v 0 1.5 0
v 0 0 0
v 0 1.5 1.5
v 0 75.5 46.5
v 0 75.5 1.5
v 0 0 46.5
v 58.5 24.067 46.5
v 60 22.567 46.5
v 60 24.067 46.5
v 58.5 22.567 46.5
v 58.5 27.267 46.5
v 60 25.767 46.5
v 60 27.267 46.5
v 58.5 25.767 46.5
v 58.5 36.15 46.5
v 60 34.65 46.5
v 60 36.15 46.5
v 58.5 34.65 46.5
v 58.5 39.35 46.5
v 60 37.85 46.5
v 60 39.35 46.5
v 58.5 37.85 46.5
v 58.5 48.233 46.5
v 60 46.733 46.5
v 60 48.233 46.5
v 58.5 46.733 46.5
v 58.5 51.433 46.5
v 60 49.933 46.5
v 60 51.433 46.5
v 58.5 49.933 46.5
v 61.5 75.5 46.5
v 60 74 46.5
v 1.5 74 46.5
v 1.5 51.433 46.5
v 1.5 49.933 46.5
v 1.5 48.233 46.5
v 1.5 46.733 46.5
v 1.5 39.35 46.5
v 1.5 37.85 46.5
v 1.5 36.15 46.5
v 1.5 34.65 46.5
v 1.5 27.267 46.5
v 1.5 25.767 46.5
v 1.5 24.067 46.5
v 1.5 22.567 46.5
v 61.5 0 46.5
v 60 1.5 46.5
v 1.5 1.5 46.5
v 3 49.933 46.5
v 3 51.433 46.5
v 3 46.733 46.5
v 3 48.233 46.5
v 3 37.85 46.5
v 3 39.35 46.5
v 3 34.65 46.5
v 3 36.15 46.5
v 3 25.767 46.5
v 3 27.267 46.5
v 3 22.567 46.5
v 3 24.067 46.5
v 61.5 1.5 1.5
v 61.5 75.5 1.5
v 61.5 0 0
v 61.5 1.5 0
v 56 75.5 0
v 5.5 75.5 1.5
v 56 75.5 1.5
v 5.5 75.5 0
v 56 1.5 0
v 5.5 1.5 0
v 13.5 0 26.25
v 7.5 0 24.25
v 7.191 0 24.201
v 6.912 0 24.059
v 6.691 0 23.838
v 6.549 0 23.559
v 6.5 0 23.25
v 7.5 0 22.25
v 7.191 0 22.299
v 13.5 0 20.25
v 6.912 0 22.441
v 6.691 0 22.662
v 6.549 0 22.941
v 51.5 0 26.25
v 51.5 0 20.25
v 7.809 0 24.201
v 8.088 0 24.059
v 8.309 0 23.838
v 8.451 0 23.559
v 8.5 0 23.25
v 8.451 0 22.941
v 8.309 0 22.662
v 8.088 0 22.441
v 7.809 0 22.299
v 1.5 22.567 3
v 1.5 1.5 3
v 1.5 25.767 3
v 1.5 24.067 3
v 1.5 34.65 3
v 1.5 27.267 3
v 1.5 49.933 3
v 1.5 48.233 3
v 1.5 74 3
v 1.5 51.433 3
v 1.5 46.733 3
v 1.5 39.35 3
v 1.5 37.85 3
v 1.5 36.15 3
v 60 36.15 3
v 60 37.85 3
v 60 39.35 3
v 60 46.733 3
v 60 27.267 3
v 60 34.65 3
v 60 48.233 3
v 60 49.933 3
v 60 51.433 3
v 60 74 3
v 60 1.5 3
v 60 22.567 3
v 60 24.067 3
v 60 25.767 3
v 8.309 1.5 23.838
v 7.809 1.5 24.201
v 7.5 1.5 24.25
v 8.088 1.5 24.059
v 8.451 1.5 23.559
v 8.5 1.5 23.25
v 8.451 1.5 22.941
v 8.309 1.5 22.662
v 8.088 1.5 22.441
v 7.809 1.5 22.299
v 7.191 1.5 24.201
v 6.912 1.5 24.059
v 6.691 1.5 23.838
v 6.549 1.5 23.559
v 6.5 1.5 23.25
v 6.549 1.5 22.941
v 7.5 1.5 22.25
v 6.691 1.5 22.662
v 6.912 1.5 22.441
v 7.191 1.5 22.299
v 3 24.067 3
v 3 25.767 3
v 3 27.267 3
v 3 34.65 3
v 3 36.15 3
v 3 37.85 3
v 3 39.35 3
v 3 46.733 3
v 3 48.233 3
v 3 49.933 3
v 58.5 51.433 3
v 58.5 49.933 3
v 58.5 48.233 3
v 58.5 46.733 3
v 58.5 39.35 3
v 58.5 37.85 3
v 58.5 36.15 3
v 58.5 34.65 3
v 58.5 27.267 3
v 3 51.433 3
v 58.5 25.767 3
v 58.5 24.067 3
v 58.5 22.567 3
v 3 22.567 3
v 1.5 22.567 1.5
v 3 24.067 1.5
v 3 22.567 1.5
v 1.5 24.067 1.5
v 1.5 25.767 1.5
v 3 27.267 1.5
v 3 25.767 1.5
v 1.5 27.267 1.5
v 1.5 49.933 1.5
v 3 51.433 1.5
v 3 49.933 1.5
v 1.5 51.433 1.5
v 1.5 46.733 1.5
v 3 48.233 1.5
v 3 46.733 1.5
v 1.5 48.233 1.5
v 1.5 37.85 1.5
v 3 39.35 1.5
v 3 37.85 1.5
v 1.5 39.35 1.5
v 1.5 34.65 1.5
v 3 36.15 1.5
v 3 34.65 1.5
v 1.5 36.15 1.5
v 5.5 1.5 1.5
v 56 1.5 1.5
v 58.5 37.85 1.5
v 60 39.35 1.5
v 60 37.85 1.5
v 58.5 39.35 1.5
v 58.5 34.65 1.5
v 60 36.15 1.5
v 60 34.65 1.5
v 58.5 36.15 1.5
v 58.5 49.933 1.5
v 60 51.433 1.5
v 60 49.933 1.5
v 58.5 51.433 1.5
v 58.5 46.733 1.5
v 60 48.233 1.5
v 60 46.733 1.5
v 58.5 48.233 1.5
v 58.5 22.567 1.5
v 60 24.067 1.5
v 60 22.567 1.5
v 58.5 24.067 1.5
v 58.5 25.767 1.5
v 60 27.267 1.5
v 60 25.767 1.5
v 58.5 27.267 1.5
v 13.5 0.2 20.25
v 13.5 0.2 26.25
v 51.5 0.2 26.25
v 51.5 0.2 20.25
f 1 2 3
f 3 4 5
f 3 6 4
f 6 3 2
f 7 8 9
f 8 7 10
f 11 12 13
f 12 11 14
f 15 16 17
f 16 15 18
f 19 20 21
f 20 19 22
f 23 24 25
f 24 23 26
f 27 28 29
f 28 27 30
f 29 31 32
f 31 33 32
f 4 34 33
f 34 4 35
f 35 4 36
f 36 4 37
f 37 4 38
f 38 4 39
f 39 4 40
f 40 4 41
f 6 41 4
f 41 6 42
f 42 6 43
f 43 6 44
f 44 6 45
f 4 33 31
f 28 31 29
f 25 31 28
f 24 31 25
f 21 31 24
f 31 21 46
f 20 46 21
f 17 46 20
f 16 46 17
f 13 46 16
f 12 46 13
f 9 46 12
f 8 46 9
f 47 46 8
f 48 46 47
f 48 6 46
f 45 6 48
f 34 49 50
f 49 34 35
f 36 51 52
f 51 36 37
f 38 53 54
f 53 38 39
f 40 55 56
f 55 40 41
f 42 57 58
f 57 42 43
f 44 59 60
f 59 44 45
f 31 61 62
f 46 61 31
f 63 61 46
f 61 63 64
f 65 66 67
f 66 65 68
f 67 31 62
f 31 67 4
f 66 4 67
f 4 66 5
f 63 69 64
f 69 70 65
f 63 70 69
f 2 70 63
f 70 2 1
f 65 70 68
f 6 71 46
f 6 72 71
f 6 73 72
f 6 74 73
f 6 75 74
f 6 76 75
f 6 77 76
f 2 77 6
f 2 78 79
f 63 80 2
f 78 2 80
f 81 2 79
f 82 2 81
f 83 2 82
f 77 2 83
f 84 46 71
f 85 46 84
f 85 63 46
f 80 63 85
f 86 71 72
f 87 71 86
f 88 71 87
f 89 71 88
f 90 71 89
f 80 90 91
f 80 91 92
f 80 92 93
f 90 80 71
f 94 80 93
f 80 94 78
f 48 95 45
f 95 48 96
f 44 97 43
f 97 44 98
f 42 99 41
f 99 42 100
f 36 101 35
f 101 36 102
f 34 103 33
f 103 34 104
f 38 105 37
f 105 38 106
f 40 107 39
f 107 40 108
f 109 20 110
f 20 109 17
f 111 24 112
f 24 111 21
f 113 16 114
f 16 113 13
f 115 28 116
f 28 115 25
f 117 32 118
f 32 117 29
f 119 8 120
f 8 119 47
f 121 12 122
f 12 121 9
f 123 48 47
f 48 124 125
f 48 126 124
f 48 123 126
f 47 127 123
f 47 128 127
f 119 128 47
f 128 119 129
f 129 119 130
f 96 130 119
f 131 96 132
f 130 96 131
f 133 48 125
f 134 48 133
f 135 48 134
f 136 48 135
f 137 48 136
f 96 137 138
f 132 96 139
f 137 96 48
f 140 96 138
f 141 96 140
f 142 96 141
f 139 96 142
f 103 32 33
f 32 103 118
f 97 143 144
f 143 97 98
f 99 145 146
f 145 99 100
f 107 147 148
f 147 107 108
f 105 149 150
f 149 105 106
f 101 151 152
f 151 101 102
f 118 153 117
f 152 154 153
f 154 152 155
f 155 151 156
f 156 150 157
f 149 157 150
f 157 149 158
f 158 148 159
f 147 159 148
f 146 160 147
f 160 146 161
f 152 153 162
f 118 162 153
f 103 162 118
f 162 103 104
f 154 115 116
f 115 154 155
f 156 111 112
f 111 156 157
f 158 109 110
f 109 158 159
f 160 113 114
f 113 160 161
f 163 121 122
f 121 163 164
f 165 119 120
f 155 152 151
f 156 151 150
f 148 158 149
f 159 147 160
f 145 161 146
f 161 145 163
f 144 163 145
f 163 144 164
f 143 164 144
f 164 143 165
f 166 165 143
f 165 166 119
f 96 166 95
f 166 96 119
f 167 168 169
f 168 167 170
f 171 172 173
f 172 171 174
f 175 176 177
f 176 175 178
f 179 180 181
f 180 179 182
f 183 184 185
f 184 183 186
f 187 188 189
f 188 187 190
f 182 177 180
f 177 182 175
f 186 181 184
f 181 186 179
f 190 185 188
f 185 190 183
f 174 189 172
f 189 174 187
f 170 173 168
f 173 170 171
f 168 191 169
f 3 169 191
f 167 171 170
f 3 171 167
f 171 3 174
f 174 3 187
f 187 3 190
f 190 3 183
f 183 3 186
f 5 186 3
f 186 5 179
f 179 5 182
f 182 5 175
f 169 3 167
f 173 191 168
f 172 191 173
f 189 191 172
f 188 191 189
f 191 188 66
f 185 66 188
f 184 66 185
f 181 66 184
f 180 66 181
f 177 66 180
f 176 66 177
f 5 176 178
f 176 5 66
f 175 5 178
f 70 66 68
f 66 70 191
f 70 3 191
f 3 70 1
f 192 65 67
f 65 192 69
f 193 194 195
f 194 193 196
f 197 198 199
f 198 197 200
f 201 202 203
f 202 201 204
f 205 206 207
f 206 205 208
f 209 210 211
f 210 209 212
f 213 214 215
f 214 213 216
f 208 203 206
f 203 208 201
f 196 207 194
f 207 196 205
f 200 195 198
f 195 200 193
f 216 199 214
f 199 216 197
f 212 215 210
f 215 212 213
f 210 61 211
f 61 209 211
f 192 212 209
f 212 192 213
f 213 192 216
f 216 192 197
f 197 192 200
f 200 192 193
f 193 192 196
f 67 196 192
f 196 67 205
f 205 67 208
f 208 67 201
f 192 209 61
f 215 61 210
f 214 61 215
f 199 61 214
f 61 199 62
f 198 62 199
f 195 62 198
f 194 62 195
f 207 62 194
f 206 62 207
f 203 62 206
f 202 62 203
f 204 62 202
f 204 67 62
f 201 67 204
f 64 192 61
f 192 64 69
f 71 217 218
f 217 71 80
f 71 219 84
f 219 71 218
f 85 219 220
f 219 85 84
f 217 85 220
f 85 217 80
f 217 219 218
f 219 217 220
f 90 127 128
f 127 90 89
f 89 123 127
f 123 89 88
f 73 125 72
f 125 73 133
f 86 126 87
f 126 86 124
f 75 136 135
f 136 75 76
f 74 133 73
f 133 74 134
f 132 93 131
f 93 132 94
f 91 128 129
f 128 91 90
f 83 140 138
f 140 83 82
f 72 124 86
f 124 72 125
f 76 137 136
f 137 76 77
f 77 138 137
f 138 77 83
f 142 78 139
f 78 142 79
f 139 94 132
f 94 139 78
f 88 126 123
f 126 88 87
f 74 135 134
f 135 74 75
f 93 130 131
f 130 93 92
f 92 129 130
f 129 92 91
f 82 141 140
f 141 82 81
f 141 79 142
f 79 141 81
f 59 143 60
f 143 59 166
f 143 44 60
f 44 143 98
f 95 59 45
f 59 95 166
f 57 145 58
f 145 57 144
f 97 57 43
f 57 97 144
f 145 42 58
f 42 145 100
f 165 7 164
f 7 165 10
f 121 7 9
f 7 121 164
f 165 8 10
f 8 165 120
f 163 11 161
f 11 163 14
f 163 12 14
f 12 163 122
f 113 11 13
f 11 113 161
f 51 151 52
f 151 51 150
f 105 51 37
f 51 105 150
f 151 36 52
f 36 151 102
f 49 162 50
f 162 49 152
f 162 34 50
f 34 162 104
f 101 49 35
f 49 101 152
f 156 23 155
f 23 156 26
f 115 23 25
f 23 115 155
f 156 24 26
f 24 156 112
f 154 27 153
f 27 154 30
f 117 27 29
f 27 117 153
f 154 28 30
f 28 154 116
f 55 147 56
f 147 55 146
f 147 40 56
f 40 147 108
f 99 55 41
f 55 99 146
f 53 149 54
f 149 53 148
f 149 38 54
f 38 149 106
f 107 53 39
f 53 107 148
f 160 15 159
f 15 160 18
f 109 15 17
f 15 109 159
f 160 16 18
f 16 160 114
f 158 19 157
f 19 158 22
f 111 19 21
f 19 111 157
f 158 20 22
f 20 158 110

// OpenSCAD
// file: wallbox_drawer.scad
$fn=20;

//module drawer(wb_width, wb_depth, wb_height, wb_thickness) {


module drawer(drawer_width, drawer_depth, drawer_height, wb_thickness) {

    difference() {
        union() {

            // Create the drawer corpus by differencing one cube from another
            difference() {

                cube([drawer_width, drawer_depth, drawer_height]);

                translate([wb_thickness, wb_thickness, wb_thickness])
                cube([drawer_width - wb_thickness * 2,drawer_depth - wb_thickness * 2, drawer_height]);
            }

            // Reinforce the bottom
            cube([drawer_width, drawer_depth, wb_thickness * 2]);
        }

        // Lowering the running rail left
        color("red")
        translate([-1, wb_thickness, -1])
        cube([6.5, drawer_depth - wb_thickness + 1, wb_thickness + 1]);

        // Lowering the running rail right
        color("red")
        translate([drawer_width - 5.5, wb_thickness, -1])
        cube([6.5, drawer_depth - wb_thickness + 1, wb_thickness + 1]);

        // Create the insert for the label
        color("red")
        translate([drawer_width - 38 -10, -0.8, drawer_height / 2 - 3])
        // Labels are 37mmx5mm
        cube([38, 1, 6]);

        // Drill the hole for the knob
        color("red")
        translate([7.5,wb_thickness + 1, drawer_height / 2])
        rotate([90,0,0])
        cylinder(h= wb_thickness + 2, r=1);

    }

    holder_distance_third=(drawer_depth-wb_thickness-wb_thickness)/3;
    holder_distance_half=(drawer_depth-wb_thickness-wb_thickness)/2;

    // Create the holder at the bottom
    color("white")
    translate([wb_thickness, holder_distance_third - wb_thickness - 0.1, wb_thickness])
    cube([wb_thickness, wb_thickness, drawer_height - wb_thickness]);

    color("white")
    translate([wb_thickness, holder_distance_third + wb_thickness + 0.1, wb_thickness])
    cube([wb_thickness, wb_thickness, drawer_height - wb_thickness]);

    color("white")
    translate([drawer_width - wb_thickness * 2, holder_distance_third - wb_thickness - 0.1, wb_thickness])
    cube([wb_thickness, wb_thickness, drawer_height - wb_thickness]);

    color("white")
    translate([drawer_width - wb_thickness * 2, holder_distance_third + wb_thickness + 0.1, wb_thickness])
    cube([wb_thickness, wb_thickness, drawer_height - wb_thickness]);

    // Create the holder at the top
    color("white")
    translate([wb_thickness, holder_distance_third * 2 - wb_thickness - 0.1, wb_thickness])
    cube([wb_thickness, wb_thickness, drawer_height - wb_thickness]);

    color("white")
    translate([wb_thickness, holder_distance_third * 2 + wb_thickness + 0.1, wb_thickness])
    cube([wb_thickness, wb_thickness, drawer_height - wb_thickness]);

    color("white")
    translate([drawer_width - wb_thickness * 2, holder_distance_third * 2 - wb_thickness - 0.1, wb_thickness])
    cube([wb_thickness, wb_thickness, drawer_height - wb_thickness]);

    color("white")
    translate([drawer_width - wb_thickness * 2, holder_distance_third * 2 + wb_thickness + 0.1, wb_thickness])
    cube([wb_thickness, wb_thickness, drawer_height - wb_thickness]);


    // Create the holder in the middle
    color("white")
    translate([wb_thickness, holder_distance_half - wb_thickness - 0.1, wb_thickness])
    cube([wb_thickness, wb_thickness, drawer_height - wb_thickness]);

    color("white")
    translate([wb_thickness, holder_distance_half + wb_thickness + 0.1, wb_thickness])
    cube([wb_thickness, wb_thickness, drawer_height - wb_thickness]);

    color("white")
    translate([drawer_width - wb_thickness * 2, holder_distance_half - wb_thickness - 0.1, wb_thickness])
    cube([wb_thickness, wb_thickness, drawer_height - wb_thickness]);

    color("white")
    translate([drawer_width - wb_thickness * 2, holder_distance_half + wb_thickness + 0.1, wb_thickness])
    cube([wb_thickness, wb_thickness, drawer_height - wb_thickness]);
}
// main file
// The measure of the box
wb_width=65;            // Original: 65
wb_depth=50;            // Original: 50
wb_height=80;           // Original: 80
wb_thickness=1.5;       // Original: 1.5

use <./wallbox_drawer.scad>

// Meeasures of the drawer, calculated on the base of the wallbox
drawer_height=(wb_depth-wb_thickness-wb_thickness)-0.5;
drawer_depth=wb_height - wb_thickness - 3;
drawer_width=wb_width-wb_thickness * 2 - 0.5;

drawer(drawer_width, drawer_depth, drawer_height, wb_thickness);
